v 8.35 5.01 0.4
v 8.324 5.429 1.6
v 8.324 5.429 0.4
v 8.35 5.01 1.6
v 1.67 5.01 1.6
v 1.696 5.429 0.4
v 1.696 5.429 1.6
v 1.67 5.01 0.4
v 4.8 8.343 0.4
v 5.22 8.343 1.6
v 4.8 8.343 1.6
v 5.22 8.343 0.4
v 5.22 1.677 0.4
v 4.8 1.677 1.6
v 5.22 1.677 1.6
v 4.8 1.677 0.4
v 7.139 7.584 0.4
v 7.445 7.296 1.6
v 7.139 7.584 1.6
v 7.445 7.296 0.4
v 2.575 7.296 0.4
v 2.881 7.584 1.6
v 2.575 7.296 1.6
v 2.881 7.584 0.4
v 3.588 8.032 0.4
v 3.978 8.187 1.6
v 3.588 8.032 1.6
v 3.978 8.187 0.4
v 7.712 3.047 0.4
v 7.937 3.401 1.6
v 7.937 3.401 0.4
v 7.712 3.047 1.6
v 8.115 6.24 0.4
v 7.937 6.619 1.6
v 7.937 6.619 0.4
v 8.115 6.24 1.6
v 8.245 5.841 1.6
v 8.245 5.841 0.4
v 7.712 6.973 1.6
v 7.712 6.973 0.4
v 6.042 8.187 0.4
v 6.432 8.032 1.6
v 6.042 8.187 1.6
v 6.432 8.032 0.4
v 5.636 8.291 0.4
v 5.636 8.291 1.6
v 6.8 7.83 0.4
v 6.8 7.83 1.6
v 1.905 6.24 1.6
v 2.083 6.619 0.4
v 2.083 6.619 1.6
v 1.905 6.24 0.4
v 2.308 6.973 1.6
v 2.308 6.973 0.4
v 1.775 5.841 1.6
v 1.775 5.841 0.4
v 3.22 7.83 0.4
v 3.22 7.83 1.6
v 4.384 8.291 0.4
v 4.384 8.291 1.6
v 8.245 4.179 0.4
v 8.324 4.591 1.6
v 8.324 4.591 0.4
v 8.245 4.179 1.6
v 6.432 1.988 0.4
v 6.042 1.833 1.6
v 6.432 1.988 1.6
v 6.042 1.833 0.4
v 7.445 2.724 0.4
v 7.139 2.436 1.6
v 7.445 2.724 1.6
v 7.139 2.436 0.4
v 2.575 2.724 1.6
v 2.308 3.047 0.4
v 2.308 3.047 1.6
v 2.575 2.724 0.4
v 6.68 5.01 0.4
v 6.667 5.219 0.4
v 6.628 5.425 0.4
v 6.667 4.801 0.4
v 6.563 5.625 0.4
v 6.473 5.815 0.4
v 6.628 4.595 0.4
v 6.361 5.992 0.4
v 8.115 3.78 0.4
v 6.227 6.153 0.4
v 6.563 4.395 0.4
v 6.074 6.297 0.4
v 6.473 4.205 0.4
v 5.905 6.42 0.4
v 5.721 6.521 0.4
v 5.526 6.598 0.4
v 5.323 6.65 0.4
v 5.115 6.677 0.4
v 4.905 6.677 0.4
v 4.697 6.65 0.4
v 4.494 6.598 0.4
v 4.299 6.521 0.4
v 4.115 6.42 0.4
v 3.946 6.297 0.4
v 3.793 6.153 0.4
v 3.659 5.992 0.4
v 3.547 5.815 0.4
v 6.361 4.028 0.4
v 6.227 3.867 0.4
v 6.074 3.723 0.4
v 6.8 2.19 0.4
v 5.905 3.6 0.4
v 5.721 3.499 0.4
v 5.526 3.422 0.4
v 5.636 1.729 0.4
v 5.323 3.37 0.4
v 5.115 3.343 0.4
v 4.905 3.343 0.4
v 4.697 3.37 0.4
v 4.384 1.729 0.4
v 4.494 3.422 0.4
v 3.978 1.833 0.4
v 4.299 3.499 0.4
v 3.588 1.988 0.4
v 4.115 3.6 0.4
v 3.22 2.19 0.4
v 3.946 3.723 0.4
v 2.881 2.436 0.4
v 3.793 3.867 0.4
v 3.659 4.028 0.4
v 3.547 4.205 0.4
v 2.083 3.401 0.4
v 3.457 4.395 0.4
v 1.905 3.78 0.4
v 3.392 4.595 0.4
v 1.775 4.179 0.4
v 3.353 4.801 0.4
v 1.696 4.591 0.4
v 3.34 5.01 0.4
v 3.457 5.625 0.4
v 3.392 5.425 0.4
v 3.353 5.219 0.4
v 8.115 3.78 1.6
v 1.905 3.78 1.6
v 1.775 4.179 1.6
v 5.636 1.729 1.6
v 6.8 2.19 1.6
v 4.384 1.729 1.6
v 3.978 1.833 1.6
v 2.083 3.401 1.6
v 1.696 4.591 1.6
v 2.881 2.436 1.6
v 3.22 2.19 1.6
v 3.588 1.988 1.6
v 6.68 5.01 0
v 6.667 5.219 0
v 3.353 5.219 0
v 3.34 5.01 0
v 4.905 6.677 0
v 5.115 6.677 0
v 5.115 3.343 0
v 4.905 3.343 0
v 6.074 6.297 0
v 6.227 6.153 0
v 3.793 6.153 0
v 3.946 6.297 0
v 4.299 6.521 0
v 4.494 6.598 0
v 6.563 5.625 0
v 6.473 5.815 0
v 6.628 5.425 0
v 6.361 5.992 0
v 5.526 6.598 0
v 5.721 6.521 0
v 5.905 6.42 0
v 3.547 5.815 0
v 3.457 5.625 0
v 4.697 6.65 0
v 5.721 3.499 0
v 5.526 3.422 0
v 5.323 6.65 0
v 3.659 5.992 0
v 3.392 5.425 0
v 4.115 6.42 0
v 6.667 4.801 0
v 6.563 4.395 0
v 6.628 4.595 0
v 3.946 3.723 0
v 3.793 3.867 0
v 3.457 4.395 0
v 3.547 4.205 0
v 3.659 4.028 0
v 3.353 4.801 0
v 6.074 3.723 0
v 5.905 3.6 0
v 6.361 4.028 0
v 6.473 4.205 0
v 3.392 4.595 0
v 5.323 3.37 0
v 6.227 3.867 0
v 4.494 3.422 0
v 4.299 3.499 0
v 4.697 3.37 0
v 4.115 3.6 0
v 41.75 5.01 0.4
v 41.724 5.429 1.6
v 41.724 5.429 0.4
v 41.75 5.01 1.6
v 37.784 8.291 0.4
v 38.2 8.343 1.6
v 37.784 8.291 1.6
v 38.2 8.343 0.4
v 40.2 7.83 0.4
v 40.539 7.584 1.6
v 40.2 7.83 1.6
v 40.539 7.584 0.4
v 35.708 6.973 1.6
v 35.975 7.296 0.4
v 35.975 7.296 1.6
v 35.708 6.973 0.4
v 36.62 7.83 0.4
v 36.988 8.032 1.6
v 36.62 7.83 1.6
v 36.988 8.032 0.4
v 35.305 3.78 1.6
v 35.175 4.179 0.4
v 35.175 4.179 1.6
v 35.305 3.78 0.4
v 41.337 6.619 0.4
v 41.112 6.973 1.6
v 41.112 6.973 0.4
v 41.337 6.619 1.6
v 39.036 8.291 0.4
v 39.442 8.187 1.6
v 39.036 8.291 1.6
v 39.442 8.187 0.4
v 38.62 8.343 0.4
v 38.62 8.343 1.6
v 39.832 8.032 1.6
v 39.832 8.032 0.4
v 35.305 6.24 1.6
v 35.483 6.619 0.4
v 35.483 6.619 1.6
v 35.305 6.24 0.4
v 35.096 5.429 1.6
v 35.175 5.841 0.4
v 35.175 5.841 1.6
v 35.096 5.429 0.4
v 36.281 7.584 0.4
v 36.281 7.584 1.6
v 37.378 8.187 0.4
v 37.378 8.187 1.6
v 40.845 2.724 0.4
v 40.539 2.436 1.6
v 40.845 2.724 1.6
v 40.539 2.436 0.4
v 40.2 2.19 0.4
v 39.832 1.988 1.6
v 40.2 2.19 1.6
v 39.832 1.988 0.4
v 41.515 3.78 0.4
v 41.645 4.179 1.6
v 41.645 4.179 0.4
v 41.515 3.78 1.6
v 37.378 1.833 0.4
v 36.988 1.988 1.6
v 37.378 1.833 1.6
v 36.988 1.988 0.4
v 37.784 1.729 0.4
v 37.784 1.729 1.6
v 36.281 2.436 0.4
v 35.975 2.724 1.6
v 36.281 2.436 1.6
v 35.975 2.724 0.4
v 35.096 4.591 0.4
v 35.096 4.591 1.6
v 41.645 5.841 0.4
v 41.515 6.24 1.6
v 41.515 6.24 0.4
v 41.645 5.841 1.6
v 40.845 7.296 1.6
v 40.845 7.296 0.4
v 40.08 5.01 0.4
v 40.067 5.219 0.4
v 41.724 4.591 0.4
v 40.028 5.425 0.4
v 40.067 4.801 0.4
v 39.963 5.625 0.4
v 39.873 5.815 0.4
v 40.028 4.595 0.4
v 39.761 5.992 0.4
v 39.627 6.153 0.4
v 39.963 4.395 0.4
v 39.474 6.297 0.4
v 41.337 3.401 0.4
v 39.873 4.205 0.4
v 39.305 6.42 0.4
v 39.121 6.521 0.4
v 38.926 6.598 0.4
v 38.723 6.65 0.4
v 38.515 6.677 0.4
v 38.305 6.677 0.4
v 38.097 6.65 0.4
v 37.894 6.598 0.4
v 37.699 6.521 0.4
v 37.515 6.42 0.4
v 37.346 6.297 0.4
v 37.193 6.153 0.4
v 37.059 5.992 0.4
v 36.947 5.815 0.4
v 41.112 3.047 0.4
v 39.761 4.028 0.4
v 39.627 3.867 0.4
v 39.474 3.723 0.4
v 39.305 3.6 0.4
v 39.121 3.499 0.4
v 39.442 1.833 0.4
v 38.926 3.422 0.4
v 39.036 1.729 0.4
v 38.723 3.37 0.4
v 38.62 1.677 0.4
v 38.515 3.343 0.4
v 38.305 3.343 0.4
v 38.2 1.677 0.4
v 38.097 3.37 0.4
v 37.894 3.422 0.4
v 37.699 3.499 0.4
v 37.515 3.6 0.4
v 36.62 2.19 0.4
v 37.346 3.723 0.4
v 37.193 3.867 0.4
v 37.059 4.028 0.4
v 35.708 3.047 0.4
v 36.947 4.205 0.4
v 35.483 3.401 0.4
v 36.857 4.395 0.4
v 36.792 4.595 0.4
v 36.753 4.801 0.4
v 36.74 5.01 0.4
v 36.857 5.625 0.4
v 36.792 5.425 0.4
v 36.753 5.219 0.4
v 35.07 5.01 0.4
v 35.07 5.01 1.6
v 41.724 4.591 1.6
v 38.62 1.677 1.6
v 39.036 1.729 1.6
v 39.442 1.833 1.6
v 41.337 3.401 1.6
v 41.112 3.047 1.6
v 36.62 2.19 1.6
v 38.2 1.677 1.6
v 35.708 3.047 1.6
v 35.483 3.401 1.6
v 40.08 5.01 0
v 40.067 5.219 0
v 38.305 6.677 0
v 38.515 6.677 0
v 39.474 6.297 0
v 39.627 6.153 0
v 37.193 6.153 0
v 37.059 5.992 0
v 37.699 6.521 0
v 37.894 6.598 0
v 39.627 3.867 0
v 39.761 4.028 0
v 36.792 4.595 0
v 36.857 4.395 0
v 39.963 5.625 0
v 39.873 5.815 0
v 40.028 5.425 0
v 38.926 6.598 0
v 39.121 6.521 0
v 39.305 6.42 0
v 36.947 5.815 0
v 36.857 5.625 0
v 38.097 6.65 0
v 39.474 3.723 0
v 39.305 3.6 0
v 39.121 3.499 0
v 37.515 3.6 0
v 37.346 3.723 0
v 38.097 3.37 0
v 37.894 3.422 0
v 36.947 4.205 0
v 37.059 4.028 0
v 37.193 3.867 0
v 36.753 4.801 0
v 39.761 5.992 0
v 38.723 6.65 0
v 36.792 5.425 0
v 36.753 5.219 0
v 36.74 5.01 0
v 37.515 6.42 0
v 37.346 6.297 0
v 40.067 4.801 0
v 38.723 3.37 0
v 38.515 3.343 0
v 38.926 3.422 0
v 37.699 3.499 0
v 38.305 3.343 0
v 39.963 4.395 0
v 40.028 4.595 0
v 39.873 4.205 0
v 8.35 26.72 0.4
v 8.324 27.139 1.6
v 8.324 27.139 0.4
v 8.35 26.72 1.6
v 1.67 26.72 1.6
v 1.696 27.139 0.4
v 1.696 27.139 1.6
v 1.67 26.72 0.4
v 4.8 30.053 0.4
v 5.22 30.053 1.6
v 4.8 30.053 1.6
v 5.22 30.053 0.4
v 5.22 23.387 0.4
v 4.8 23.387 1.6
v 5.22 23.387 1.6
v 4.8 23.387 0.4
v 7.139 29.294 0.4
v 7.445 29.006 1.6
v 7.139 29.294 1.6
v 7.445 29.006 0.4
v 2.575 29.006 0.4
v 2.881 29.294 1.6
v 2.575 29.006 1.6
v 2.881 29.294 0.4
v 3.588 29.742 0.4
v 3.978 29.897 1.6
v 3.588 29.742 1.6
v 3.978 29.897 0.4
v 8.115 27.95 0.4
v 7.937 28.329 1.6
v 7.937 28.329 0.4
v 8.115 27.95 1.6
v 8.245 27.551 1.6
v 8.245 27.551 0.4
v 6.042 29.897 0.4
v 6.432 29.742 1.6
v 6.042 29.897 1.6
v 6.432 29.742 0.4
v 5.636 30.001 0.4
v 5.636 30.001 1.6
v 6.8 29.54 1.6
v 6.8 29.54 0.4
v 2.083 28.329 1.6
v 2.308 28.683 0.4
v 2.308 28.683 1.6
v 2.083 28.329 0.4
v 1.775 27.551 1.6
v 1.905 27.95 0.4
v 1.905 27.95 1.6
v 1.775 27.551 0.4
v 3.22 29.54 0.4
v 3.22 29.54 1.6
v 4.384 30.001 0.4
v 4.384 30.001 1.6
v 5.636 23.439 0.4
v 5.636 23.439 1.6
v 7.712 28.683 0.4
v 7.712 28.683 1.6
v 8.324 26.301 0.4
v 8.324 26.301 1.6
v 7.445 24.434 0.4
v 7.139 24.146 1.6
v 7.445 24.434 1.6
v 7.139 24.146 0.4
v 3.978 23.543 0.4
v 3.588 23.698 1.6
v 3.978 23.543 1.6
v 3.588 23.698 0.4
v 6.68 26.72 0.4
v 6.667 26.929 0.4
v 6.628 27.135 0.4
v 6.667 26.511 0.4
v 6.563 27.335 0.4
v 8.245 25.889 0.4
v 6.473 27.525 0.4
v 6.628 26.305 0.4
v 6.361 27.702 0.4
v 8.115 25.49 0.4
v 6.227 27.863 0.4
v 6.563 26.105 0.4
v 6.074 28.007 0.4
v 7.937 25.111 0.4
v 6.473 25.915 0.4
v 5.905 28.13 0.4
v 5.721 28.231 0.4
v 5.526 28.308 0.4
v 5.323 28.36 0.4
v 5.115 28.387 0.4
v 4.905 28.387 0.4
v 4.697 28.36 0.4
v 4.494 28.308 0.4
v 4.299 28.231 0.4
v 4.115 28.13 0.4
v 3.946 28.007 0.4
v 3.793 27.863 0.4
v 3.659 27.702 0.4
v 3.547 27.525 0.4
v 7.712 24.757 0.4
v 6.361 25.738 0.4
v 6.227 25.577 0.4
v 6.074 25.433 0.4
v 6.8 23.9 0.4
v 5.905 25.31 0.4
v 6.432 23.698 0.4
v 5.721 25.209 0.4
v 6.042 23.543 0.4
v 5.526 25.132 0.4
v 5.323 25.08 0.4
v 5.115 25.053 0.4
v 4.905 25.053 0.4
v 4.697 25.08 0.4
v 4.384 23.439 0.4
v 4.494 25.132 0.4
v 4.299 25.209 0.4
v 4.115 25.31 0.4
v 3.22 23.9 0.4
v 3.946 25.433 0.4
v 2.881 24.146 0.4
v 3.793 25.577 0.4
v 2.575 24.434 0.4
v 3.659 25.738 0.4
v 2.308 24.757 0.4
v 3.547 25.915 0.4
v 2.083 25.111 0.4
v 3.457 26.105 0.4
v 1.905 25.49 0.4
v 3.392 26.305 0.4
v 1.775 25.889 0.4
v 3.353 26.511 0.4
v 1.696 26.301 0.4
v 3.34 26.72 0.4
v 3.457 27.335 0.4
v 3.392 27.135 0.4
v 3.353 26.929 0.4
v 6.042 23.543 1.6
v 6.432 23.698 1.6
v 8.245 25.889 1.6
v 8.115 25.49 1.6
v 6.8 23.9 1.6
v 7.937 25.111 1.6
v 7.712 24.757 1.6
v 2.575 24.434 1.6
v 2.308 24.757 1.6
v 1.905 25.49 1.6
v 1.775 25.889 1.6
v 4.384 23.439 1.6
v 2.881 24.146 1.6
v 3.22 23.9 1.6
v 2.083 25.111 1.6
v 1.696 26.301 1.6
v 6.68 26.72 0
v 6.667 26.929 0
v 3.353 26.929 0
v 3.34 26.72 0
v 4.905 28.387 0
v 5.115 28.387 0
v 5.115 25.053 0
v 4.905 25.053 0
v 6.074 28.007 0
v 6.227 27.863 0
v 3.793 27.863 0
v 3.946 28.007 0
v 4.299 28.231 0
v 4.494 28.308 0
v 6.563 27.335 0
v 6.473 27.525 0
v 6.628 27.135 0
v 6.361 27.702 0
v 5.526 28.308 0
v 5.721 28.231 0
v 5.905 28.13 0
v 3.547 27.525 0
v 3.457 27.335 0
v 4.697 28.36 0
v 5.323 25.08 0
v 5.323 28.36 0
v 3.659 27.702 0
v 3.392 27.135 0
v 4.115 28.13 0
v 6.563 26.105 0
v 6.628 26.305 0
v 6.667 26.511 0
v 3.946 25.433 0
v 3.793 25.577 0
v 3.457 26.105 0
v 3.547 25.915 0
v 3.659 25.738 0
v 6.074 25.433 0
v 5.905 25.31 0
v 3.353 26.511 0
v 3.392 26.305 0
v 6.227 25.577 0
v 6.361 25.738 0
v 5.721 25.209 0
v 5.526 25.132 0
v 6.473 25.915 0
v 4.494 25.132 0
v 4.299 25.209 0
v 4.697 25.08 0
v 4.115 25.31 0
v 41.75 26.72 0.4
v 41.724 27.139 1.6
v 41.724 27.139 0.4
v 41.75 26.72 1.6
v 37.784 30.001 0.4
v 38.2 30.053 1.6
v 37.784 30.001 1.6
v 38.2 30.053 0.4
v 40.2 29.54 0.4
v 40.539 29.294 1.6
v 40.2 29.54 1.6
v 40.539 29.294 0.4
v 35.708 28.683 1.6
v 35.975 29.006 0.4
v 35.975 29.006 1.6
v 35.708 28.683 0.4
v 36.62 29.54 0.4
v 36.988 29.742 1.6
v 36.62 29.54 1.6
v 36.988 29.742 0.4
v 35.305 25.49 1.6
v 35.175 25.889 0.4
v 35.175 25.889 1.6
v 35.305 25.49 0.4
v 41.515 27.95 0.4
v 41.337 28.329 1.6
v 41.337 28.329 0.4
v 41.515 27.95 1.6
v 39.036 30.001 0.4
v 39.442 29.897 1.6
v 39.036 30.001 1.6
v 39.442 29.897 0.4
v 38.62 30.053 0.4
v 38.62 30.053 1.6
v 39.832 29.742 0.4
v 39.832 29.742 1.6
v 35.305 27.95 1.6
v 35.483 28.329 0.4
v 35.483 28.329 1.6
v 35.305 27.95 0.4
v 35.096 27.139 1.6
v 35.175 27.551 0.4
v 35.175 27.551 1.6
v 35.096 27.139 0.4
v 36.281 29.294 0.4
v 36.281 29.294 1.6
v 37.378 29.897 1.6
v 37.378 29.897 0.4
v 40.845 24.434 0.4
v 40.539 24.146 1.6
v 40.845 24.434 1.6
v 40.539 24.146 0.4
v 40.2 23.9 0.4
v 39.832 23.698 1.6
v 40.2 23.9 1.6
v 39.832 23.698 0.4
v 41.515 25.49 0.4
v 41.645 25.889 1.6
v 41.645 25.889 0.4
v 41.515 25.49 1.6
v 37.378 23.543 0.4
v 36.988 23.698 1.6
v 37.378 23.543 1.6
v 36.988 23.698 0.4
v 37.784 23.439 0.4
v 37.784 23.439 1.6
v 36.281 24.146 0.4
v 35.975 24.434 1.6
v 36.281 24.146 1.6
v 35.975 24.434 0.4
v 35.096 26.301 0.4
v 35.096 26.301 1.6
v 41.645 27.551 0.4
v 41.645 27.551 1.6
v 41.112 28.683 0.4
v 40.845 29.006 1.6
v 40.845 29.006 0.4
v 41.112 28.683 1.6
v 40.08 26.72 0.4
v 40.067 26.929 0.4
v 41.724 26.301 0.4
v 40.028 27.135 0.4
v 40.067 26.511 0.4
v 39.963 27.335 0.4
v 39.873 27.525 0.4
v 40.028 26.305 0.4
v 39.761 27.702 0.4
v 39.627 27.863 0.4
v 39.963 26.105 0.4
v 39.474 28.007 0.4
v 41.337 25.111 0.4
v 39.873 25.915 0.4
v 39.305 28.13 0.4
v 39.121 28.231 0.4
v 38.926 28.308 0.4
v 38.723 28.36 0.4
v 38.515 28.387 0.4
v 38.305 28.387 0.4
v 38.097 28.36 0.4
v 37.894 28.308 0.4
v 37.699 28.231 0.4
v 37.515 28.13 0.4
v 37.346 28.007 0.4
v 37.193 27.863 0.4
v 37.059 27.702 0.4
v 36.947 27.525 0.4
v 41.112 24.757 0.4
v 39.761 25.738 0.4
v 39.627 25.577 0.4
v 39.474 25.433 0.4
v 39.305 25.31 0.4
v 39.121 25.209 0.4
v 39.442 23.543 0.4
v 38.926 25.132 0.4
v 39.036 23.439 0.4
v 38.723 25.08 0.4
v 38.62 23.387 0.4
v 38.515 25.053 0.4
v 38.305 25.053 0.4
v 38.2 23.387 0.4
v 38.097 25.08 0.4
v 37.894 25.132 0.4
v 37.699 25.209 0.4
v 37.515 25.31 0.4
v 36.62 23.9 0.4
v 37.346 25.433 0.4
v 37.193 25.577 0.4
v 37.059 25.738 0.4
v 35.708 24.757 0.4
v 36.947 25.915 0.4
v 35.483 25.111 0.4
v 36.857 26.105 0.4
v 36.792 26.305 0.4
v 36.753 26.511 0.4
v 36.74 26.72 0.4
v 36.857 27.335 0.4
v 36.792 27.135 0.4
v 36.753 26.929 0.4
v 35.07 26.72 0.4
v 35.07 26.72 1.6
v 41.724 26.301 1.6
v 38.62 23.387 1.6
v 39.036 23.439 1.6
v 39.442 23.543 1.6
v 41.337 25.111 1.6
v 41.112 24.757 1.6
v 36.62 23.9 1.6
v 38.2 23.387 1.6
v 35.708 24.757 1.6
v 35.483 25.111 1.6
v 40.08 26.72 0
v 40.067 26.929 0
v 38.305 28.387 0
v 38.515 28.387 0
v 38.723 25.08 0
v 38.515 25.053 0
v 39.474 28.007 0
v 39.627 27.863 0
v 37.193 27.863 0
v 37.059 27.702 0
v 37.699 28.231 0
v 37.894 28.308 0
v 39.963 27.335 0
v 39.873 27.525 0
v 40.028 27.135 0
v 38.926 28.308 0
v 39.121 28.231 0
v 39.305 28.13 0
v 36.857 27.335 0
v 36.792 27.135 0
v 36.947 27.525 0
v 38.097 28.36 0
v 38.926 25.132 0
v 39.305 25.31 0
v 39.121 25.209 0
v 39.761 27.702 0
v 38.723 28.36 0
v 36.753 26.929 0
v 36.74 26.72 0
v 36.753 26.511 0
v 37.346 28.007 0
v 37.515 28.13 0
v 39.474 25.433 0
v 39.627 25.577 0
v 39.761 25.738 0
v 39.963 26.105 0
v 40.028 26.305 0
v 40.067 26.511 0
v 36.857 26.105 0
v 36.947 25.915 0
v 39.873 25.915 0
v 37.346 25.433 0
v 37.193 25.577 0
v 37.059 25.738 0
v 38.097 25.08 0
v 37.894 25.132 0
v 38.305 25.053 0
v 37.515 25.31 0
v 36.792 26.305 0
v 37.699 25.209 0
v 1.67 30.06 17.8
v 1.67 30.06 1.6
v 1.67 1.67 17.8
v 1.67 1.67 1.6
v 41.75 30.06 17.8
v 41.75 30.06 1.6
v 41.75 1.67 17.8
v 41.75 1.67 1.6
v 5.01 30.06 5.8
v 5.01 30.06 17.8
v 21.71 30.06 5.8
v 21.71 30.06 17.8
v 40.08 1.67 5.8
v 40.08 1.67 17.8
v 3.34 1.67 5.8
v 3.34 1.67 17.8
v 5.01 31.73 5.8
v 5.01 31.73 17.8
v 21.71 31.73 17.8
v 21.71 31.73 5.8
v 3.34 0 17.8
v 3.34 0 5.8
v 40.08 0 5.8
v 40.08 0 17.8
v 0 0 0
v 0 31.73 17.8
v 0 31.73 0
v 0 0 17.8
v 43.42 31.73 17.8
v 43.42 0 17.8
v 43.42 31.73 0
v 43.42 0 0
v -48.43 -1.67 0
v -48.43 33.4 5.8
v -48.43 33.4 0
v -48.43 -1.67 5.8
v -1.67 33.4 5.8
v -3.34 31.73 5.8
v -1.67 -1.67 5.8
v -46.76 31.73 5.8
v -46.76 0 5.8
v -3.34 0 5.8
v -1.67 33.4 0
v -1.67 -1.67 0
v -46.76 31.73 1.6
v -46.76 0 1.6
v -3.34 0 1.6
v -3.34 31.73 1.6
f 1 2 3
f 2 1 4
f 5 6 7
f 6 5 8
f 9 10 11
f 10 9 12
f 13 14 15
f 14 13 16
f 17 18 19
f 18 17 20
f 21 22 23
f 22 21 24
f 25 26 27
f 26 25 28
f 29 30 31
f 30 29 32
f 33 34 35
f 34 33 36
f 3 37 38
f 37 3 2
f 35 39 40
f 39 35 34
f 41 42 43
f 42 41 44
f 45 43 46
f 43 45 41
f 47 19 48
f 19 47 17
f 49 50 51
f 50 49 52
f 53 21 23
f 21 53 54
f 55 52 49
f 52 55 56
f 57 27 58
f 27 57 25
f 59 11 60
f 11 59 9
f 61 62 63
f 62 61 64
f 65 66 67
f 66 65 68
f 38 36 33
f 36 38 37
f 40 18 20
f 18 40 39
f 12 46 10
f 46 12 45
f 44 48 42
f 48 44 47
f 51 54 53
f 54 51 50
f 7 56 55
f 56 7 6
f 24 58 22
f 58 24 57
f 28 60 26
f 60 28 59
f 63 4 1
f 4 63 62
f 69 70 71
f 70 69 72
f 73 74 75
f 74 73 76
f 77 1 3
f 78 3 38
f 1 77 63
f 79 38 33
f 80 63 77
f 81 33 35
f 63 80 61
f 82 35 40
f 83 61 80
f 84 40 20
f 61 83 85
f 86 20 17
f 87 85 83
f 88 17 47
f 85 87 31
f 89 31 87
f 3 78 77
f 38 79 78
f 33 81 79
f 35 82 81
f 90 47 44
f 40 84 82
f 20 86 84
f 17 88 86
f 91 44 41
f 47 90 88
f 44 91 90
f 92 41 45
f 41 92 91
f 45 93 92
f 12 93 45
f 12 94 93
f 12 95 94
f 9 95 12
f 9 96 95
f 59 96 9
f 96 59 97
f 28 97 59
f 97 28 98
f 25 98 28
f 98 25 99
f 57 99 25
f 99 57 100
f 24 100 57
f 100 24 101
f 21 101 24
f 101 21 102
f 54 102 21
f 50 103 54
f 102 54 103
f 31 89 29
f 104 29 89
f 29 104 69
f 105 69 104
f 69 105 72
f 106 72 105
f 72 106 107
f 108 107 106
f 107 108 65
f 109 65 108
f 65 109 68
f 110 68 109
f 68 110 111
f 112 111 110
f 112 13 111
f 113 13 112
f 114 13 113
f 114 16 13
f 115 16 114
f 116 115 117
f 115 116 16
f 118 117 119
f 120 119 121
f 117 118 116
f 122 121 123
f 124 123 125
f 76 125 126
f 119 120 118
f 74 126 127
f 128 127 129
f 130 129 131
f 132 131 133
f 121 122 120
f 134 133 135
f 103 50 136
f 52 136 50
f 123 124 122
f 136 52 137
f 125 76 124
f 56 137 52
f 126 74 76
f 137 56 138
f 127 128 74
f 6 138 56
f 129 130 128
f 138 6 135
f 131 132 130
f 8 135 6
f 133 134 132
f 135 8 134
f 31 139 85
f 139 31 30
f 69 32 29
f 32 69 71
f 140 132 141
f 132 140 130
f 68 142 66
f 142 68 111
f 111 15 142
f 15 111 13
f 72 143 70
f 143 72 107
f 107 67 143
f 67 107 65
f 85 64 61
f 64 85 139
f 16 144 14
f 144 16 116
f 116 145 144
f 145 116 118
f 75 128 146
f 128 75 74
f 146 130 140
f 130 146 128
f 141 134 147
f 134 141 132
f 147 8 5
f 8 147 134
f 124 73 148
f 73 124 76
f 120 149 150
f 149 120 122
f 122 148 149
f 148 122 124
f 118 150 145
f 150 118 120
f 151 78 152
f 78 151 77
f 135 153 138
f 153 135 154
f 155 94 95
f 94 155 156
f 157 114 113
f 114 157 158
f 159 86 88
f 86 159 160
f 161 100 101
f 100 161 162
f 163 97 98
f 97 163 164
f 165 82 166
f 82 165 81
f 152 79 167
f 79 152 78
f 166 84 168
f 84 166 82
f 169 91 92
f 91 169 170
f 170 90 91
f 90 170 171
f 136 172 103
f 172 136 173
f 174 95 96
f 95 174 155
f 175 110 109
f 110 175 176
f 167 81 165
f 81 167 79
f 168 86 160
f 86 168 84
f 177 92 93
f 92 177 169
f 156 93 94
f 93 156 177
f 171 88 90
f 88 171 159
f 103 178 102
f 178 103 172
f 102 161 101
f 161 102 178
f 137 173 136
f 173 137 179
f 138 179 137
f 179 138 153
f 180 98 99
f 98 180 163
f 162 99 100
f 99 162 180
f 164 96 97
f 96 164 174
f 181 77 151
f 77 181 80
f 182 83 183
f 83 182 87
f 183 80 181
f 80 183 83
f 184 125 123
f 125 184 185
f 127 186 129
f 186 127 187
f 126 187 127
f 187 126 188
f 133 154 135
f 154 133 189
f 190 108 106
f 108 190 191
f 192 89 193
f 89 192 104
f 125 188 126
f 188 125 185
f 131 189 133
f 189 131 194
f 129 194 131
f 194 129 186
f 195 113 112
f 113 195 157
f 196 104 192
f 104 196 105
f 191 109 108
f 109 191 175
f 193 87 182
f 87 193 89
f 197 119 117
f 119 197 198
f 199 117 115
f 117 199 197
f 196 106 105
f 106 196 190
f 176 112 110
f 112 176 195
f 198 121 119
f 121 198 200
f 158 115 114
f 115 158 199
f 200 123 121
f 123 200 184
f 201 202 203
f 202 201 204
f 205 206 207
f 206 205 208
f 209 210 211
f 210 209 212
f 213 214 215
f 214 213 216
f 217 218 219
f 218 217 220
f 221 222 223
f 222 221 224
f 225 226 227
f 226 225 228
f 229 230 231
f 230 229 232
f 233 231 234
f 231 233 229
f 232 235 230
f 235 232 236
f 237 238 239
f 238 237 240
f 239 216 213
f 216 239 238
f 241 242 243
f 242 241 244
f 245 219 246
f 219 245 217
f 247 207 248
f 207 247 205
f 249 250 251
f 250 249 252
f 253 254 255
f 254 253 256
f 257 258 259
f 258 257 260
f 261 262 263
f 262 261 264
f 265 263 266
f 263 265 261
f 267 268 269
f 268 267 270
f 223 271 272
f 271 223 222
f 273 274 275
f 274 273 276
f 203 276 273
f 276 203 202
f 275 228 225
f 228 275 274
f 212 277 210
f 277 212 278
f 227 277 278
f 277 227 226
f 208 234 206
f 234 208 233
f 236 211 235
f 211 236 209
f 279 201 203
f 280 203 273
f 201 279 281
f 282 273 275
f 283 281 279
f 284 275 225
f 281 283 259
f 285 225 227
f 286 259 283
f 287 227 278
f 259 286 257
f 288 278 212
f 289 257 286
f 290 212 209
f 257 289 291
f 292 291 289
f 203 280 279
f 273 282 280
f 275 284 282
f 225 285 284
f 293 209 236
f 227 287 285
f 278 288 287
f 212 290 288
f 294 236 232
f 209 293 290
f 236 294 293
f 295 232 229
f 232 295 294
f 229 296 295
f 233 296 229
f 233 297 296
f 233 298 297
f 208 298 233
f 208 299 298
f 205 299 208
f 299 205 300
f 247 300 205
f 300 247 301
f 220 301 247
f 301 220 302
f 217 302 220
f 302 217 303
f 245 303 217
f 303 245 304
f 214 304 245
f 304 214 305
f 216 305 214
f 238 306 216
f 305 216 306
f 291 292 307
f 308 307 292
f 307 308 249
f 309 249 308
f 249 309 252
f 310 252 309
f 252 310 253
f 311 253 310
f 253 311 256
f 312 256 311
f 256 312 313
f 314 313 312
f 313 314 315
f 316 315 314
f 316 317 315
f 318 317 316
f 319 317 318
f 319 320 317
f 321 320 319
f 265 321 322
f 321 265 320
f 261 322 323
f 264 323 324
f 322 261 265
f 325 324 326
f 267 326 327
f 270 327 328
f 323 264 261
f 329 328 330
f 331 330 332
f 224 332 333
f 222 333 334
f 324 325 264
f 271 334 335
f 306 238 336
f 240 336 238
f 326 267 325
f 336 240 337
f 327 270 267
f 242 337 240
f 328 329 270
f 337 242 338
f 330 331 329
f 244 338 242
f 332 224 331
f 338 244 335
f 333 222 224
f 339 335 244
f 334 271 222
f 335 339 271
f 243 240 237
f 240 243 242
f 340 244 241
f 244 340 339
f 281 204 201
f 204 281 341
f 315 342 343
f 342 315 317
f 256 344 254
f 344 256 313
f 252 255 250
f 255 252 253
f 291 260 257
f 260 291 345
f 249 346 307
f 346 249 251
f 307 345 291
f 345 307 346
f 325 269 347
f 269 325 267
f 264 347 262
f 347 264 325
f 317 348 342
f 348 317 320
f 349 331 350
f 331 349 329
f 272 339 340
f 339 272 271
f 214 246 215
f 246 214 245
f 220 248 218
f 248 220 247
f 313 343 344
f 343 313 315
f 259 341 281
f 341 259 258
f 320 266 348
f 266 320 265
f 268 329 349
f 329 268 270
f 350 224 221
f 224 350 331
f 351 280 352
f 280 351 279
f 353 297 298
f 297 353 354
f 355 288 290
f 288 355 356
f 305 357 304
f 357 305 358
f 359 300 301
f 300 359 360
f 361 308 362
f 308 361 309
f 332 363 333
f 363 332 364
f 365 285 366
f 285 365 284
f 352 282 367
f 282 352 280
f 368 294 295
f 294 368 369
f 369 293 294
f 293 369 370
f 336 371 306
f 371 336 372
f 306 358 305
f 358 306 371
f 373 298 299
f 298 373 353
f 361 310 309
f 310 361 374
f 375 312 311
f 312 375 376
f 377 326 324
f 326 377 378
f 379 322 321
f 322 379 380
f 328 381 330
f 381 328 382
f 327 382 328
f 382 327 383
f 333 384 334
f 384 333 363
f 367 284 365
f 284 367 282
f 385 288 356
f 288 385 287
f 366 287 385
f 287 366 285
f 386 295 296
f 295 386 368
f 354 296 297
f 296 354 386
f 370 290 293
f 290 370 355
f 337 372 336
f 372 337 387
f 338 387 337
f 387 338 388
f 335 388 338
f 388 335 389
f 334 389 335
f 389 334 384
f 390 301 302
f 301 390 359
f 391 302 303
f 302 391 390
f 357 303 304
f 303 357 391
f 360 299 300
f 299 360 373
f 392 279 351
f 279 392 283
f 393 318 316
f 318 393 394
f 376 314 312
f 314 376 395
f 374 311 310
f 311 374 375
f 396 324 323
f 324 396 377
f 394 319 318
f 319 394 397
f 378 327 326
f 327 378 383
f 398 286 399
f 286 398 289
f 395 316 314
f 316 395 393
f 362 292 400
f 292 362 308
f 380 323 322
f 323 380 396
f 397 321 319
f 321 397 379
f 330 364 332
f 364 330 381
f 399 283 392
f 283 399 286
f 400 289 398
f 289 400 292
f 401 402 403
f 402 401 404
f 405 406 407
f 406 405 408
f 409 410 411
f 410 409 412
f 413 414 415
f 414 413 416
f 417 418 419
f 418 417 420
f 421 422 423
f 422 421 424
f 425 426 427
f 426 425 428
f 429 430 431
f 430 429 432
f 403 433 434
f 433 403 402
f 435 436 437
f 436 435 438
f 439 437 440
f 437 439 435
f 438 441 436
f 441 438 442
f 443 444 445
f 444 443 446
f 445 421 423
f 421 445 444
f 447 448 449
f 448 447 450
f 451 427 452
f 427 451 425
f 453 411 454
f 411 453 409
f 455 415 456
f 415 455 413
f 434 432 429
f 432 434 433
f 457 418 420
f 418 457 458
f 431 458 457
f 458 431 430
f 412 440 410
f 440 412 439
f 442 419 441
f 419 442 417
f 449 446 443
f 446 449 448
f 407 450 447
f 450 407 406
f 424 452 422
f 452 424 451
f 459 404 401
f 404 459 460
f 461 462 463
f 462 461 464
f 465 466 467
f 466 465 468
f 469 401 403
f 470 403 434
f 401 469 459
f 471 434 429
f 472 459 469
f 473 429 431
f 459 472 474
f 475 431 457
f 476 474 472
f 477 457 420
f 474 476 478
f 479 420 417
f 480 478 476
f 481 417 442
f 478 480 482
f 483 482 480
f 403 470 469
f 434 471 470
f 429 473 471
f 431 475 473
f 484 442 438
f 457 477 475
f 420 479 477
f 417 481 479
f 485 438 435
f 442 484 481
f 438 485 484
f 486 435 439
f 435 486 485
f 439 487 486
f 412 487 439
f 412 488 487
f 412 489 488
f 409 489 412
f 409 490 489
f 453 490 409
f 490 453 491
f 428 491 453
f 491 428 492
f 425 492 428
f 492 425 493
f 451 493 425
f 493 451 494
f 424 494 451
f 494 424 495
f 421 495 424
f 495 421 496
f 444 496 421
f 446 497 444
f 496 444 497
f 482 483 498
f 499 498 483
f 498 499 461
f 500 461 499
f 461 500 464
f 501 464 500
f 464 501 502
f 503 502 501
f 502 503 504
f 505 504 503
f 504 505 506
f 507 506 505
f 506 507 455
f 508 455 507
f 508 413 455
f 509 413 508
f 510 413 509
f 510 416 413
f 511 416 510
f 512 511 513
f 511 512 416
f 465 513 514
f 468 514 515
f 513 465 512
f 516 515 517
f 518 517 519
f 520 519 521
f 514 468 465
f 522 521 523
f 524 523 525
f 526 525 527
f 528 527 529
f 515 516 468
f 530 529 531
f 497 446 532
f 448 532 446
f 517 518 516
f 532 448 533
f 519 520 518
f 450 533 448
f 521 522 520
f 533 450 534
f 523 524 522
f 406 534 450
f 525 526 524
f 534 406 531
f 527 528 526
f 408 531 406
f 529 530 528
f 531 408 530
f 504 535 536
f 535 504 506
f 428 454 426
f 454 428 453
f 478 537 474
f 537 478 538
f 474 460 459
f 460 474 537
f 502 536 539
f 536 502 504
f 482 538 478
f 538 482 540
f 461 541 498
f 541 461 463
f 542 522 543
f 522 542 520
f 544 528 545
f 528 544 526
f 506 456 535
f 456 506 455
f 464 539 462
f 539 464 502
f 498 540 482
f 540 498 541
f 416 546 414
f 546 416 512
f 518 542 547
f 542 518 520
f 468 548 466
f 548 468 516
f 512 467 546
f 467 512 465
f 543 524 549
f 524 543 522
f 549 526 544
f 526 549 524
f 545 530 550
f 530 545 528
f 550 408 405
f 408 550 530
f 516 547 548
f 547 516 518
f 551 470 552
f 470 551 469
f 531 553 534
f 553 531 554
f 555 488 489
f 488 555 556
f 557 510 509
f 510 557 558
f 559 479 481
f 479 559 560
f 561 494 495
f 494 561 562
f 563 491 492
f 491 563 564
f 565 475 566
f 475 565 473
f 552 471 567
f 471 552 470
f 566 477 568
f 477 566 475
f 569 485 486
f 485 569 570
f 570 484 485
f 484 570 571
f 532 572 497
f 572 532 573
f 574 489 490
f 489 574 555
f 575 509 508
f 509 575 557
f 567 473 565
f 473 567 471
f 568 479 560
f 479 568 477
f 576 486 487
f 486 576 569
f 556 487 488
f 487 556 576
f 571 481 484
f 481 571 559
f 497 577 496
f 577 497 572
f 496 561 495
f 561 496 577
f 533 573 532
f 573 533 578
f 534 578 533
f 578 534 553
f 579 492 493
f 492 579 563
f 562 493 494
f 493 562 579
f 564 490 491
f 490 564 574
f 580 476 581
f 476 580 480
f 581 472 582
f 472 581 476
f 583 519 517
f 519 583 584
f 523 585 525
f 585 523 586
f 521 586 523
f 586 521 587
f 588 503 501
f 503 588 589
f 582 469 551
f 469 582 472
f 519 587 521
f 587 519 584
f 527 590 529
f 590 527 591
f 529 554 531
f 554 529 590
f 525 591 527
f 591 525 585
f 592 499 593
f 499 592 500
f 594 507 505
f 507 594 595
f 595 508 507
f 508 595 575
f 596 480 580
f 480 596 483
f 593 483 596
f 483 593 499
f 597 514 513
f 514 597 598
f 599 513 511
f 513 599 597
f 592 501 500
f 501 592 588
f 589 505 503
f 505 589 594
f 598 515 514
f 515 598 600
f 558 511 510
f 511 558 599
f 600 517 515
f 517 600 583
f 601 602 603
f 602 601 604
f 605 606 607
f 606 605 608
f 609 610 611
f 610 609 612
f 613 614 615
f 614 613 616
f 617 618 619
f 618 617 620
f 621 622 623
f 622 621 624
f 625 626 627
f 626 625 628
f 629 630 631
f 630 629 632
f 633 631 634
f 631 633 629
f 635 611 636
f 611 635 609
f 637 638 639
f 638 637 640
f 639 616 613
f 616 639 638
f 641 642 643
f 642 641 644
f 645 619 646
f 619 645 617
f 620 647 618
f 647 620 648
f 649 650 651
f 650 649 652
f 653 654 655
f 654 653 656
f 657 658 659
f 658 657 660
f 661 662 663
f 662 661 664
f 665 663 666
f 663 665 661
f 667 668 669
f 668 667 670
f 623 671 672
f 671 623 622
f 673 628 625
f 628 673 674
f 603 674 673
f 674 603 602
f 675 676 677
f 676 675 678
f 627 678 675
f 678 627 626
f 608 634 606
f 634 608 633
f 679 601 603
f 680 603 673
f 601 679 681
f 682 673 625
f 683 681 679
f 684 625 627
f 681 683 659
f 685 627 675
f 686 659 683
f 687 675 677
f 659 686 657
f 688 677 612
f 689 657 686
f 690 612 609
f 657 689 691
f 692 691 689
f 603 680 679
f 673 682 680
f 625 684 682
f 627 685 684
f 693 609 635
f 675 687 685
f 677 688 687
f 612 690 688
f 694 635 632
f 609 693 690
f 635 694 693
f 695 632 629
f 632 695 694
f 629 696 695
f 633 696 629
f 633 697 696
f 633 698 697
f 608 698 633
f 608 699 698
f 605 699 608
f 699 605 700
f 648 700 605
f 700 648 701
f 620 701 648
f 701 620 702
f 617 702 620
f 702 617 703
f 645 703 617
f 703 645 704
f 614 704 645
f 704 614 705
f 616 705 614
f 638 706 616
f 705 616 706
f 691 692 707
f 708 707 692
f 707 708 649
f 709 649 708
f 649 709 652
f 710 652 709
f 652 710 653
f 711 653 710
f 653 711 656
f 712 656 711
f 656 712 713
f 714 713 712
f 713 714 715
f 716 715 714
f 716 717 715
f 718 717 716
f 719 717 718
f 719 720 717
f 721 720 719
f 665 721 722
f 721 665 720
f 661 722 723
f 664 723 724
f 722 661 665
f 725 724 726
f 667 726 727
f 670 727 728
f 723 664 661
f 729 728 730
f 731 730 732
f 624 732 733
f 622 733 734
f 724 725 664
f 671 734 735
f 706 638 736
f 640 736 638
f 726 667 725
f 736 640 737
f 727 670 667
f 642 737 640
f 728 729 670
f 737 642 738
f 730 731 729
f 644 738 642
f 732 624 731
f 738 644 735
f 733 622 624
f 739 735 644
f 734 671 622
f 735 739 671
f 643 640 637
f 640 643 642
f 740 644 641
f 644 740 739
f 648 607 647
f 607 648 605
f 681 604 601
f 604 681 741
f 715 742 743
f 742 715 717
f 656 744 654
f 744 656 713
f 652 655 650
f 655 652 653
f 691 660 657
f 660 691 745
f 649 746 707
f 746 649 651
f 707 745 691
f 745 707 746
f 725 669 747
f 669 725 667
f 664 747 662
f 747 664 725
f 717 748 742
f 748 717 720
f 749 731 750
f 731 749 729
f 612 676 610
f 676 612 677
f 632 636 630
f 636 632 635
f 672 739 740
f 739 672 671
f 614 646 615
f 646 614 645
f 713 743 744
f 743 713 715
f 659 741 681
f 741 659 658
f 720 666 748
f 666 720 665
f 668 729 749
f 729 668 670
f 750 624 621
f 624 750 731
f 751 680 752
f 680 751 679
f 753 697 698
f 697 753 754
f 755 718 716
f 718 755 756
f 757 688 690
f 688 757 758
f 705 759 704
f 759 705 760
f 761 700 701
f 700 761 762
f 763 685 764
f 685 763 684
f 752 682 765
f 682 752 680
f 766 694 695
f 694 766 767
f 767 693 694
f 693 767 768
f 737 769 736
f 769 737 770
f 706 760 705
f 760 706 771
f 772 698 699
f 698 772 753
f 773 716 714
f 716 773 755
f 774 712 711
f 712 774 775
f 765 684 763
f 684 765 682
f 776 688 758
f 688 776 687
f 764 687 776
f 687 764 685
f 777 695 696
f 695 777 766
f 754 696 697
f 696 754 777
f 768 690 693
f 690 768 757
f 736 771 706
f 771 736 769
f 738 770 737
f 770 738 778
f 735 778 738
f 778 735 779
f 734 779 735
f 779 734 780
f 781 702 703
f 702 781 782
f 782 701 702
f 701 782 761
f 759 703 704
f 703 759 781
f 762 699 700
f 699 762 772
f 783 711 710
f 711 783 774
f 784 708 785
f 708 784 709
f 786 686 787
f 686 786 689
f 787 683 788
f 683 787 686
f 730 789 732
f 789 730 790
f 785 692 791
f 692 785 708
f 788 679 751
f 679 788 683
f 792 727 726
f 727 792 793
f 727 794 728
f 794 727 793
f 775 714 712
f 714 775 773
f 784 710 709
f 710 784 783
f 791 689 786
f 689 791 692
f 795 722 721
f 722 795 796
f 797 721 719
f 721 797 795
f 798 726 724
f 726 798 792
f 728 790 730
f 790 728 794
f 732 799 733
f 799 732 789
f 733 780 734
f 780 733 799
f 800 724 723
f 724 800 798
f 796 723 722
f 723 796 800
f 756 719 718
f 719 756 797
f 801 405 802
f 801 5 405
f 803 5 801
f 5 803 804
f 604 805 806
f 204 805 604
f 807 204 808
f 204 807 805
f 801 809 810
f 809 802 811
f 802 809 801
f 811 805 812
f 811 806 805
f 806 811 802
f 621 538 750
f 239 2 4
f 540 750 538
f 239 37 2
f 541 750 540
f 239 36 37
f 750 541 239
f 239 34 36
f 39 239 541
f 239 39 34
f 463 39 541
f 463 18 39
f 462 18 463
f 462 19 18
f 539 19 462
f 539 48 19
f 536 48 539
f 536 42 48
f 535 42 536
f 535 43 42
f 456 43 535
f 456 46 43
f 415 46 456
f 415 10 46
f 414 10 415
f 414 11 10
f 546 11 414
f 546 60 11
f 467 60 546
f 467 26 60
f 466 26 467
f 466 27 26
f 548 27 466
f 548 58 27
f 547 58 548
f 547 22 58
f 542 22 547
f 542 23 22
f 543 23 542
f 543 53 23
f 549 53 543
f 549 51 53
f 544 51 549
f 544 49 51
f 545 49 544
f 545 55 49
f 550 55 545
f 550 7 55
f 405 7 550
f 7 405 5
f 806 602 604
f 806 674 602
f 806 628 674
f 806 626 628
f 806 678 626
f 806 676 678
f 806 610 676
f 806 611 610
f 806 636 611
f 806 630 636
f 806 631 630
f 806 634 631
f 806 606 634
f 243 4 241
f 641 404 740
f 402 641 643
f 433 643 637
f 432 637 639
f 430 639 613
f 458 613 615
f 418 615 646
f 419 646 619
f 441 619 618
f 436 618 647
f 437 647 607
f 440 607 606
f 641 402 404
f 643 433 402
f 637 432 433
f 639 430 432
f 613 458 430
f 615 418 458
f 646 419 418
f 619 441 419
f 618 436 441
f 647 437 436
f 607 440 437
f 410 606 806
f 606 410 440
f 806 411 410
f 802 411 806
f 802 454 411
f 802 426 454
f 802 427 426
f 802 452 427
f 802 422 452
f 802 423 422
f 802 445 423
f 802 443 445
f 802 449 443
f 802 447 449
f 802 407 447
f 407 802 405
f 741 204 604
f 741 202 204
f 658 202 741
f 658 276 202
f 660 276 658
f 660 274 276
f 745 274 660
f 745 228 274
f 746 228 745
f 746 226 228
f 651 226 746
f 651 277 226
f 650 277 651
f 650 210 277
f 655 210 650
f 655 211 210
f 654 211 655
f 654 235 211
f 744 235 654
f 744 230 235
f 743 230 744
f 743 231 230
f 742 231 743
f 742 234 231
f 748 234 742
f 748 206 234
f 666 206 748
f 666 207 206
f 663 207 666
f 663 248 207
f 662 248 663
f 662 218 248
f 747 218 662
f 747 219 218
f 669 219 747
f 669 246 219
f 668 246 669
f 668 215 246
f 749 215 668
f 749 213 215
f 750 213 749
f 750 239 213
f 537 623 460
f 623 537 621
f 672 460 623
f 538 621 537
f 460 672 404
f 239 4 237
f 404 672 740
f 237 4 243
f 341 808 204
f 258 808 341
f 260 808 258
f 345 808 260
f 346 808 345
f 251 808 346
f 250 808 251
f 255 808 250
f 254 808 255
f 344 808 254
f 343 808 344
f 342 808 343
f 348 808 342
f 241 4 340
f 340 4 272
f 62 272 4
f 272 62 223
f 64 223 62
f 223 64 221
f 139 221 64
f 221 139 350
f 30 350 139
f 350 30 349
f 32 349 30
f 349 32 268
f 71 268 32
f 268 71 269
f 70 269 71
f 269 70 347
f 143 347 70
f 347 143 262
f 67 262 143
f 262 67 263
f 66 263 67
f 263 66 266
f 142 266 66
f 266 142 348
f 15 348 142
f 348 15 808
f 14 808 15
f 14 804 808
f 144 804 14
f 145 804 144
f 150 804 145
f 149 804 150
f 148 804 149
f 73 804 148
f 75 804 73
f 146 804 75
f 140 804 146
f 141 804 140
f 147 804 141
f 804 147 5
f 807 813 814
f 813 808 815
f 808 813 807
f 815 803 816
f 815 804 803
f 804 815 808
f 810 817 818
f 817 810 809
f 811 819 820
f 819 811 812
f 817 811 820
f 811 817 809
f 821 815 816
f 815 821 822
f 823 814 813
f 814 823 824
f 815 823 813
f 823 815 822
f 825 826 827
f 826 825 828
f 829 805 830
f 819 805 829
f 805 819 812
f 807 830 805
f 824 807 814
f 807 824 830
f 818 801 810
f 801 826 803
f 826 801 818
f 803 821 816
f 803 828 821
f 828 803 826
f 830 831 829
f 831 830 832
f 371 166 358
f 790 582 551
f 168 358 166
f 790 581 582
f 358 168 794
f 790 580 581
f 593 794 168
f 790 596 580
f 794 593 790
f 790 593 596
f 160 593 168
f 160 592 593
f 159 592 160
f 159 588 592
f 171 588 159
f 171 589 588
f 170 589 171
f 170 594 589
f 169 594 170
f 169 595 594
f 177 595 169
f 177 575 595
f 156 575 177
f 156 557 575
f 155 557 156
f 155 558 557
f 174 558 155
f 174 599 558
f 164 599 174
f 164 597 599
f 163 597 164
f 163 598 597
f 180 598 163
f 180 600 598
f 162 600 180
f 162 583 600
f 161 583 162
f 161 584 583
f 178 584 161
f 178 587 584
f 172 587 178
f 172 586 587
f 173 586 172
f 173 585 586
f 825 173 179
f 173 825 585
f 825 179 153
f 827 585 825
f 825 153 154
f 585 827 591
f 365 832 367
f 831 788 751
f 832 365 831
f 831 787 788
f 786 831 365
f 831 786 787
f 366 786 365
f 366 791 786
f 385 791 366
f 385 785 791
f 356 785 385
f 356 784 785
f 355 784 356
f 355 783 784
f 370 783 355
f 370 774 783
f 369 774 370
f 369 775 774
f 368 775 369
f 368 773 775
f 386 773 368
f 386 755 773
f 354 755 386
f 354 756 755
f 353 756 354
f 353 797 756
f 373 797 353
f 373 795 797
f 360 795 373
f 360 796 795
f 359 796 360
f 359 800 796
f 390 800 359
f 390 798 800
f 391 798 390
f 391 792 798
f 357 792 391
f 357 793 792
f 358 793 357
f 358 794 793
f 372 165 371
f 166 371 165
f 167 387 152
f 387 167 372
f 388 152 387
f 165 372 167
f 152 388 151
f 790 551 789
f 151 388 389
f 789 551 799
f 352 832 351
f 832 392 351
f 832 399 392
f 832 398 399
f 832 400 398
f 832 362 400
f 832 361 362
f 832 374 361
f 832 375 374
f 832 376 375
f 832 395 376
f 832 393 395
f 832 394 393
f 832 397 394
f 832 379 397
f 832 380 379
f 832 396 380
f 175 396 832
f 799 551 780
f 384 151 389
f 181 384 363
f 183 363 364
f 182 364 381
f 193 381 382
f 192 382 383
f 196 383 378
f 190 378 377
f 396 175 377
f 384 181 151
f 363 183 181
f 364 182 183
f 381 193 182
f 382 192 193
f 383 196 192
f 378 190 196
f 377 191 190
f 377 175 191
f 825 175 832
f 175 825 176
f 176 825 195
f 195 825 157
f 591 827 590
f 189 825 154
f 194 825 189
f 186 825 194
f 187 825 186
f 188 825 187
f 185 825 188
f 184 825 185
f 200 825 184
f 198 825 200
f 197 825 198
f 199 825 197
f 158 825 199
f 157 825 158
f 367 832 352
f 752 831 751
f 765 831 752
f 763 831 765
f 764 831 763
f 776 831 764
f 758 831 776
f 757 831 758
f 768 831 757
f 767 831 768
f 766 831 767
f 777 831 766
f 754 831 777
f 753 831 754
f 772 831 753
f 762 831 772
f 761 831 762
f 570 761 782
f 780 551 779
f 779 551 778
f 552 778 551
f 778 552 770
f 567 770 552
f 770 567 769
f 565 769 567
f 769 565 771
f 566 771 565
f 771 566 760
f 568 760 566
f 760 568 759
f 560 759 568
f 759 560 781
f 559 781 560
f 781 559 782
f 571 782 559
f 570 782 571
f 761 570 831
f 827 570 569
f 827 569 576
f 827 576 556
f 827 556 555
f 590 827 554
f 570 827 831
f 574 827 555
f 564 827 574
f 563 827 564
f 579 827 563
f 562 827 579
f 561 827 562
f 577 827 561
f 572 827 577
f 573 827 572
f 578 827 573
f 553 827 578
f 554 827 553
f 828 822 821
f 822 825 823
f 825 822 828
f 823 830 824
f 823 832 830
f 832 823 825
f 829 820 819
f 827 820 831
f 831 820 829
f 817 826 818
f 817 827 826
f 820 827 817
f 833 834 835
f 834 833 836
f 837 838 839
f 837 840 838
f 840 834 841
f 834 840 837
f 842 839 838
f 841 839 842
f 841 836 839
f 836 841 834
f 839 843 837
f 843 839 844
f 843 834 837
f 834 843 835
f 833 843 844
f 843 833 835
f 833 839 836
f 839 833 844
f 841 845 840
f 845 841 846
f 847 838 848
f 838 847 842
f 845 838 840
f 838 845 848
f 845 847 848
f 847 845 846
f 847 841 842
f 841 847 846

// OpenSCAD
first_layer_height = 0.4;
layer_height = 0.6;

bottom_width = first_layer_height + 2*layer_height;
top_width = 2*layer_height;
wall_width = 1.67;

function xy_dim_adj(x) = ceil(x/wall_width)*wall_width;
function  z_dim_adj(z) = ceil(z/layer_height)*layer_height;

box_l = 39;
box_w = 28;
box_h = 16;
box_bt_h = 4;
cap_h = 4;

box_l_adj = xy_dim_adj(box_l);
box_w_adj = xy_dim_adj(box_w);
box_h_adj = z_dim_adj(box_h);
box_bt_h_adj = z_dim_adj(box_bt_h);
cap_h_adj = z_dim_adj(cap_h);

screws_hd = 5.55;
screws_hh = 2.38;
screws_hd_offset = first_layer_height;
screws_d = 3;
screws_xy = [
  [            3*wall_width, 3*wall_width],
  [box_l_adj - 1*wall_width, 3*wall_width],
  [            3*wall_width, box_w_adj-1*wall_width],
  [box_l_adj - 1*wall_width, box_w_adj-1*wall_width]
];

screws_hd_adj = xy_dim_adj(screws_hd);
screws_d_adj = xy_dim_adj(screws_d);

difference() {
  cube([box_l_adj+2*wall_width, box_w_adj+2*wall_width, box_h_adj+bottom_width]);
  union() {
    translate([wall_width, wall_width, bottom_width])
      cube([box_l_adj, box_w_adj, box_h_adj+bottom_width]);
    
    translate([xy_dim_adj(3)+wall_width, box_w_adj, bottom_width+box_bt_h_adj])
      cube([xy_dim_adj(16), 3*wall_width, box_h_adj+bottom_width]);
    translate([xy_dim_adj(1)+wall_width, -wall_width, bottom_width+box_bt_h_adj])
      cube([xy_dim_adj(36), 3*wall_width, box_h_adj+bottom_width]);
      
    for(xy = screws_xy) {
      translate([xy[0], xy[1], screws_hd_offset])
        cylinder(h=bottom_width, d=screws_hd_adj, $fn=50, center=false);
      translate([xy[0], xy[1], 0])
        cylinder(h=3*bottom_width, d=screws_d_adj, $fn=50, center=true);
    }
    
  }
}

// cap
translate([-box_l_adj-4*wall_width, 0, 0])
difference() {
  translate([-wall_width, -wall_width, 0])
    cube([box_l_adj+4*wall_width, box_w_adj+4*wall_width, cap_h_adj+bottom_width]);
  translate([0, 0, bottom_width])
    cube([box_l_adj+2*wall_width, box_w_adj+2*wall_width, cap_h_adj+2*bottom_width]);
}
